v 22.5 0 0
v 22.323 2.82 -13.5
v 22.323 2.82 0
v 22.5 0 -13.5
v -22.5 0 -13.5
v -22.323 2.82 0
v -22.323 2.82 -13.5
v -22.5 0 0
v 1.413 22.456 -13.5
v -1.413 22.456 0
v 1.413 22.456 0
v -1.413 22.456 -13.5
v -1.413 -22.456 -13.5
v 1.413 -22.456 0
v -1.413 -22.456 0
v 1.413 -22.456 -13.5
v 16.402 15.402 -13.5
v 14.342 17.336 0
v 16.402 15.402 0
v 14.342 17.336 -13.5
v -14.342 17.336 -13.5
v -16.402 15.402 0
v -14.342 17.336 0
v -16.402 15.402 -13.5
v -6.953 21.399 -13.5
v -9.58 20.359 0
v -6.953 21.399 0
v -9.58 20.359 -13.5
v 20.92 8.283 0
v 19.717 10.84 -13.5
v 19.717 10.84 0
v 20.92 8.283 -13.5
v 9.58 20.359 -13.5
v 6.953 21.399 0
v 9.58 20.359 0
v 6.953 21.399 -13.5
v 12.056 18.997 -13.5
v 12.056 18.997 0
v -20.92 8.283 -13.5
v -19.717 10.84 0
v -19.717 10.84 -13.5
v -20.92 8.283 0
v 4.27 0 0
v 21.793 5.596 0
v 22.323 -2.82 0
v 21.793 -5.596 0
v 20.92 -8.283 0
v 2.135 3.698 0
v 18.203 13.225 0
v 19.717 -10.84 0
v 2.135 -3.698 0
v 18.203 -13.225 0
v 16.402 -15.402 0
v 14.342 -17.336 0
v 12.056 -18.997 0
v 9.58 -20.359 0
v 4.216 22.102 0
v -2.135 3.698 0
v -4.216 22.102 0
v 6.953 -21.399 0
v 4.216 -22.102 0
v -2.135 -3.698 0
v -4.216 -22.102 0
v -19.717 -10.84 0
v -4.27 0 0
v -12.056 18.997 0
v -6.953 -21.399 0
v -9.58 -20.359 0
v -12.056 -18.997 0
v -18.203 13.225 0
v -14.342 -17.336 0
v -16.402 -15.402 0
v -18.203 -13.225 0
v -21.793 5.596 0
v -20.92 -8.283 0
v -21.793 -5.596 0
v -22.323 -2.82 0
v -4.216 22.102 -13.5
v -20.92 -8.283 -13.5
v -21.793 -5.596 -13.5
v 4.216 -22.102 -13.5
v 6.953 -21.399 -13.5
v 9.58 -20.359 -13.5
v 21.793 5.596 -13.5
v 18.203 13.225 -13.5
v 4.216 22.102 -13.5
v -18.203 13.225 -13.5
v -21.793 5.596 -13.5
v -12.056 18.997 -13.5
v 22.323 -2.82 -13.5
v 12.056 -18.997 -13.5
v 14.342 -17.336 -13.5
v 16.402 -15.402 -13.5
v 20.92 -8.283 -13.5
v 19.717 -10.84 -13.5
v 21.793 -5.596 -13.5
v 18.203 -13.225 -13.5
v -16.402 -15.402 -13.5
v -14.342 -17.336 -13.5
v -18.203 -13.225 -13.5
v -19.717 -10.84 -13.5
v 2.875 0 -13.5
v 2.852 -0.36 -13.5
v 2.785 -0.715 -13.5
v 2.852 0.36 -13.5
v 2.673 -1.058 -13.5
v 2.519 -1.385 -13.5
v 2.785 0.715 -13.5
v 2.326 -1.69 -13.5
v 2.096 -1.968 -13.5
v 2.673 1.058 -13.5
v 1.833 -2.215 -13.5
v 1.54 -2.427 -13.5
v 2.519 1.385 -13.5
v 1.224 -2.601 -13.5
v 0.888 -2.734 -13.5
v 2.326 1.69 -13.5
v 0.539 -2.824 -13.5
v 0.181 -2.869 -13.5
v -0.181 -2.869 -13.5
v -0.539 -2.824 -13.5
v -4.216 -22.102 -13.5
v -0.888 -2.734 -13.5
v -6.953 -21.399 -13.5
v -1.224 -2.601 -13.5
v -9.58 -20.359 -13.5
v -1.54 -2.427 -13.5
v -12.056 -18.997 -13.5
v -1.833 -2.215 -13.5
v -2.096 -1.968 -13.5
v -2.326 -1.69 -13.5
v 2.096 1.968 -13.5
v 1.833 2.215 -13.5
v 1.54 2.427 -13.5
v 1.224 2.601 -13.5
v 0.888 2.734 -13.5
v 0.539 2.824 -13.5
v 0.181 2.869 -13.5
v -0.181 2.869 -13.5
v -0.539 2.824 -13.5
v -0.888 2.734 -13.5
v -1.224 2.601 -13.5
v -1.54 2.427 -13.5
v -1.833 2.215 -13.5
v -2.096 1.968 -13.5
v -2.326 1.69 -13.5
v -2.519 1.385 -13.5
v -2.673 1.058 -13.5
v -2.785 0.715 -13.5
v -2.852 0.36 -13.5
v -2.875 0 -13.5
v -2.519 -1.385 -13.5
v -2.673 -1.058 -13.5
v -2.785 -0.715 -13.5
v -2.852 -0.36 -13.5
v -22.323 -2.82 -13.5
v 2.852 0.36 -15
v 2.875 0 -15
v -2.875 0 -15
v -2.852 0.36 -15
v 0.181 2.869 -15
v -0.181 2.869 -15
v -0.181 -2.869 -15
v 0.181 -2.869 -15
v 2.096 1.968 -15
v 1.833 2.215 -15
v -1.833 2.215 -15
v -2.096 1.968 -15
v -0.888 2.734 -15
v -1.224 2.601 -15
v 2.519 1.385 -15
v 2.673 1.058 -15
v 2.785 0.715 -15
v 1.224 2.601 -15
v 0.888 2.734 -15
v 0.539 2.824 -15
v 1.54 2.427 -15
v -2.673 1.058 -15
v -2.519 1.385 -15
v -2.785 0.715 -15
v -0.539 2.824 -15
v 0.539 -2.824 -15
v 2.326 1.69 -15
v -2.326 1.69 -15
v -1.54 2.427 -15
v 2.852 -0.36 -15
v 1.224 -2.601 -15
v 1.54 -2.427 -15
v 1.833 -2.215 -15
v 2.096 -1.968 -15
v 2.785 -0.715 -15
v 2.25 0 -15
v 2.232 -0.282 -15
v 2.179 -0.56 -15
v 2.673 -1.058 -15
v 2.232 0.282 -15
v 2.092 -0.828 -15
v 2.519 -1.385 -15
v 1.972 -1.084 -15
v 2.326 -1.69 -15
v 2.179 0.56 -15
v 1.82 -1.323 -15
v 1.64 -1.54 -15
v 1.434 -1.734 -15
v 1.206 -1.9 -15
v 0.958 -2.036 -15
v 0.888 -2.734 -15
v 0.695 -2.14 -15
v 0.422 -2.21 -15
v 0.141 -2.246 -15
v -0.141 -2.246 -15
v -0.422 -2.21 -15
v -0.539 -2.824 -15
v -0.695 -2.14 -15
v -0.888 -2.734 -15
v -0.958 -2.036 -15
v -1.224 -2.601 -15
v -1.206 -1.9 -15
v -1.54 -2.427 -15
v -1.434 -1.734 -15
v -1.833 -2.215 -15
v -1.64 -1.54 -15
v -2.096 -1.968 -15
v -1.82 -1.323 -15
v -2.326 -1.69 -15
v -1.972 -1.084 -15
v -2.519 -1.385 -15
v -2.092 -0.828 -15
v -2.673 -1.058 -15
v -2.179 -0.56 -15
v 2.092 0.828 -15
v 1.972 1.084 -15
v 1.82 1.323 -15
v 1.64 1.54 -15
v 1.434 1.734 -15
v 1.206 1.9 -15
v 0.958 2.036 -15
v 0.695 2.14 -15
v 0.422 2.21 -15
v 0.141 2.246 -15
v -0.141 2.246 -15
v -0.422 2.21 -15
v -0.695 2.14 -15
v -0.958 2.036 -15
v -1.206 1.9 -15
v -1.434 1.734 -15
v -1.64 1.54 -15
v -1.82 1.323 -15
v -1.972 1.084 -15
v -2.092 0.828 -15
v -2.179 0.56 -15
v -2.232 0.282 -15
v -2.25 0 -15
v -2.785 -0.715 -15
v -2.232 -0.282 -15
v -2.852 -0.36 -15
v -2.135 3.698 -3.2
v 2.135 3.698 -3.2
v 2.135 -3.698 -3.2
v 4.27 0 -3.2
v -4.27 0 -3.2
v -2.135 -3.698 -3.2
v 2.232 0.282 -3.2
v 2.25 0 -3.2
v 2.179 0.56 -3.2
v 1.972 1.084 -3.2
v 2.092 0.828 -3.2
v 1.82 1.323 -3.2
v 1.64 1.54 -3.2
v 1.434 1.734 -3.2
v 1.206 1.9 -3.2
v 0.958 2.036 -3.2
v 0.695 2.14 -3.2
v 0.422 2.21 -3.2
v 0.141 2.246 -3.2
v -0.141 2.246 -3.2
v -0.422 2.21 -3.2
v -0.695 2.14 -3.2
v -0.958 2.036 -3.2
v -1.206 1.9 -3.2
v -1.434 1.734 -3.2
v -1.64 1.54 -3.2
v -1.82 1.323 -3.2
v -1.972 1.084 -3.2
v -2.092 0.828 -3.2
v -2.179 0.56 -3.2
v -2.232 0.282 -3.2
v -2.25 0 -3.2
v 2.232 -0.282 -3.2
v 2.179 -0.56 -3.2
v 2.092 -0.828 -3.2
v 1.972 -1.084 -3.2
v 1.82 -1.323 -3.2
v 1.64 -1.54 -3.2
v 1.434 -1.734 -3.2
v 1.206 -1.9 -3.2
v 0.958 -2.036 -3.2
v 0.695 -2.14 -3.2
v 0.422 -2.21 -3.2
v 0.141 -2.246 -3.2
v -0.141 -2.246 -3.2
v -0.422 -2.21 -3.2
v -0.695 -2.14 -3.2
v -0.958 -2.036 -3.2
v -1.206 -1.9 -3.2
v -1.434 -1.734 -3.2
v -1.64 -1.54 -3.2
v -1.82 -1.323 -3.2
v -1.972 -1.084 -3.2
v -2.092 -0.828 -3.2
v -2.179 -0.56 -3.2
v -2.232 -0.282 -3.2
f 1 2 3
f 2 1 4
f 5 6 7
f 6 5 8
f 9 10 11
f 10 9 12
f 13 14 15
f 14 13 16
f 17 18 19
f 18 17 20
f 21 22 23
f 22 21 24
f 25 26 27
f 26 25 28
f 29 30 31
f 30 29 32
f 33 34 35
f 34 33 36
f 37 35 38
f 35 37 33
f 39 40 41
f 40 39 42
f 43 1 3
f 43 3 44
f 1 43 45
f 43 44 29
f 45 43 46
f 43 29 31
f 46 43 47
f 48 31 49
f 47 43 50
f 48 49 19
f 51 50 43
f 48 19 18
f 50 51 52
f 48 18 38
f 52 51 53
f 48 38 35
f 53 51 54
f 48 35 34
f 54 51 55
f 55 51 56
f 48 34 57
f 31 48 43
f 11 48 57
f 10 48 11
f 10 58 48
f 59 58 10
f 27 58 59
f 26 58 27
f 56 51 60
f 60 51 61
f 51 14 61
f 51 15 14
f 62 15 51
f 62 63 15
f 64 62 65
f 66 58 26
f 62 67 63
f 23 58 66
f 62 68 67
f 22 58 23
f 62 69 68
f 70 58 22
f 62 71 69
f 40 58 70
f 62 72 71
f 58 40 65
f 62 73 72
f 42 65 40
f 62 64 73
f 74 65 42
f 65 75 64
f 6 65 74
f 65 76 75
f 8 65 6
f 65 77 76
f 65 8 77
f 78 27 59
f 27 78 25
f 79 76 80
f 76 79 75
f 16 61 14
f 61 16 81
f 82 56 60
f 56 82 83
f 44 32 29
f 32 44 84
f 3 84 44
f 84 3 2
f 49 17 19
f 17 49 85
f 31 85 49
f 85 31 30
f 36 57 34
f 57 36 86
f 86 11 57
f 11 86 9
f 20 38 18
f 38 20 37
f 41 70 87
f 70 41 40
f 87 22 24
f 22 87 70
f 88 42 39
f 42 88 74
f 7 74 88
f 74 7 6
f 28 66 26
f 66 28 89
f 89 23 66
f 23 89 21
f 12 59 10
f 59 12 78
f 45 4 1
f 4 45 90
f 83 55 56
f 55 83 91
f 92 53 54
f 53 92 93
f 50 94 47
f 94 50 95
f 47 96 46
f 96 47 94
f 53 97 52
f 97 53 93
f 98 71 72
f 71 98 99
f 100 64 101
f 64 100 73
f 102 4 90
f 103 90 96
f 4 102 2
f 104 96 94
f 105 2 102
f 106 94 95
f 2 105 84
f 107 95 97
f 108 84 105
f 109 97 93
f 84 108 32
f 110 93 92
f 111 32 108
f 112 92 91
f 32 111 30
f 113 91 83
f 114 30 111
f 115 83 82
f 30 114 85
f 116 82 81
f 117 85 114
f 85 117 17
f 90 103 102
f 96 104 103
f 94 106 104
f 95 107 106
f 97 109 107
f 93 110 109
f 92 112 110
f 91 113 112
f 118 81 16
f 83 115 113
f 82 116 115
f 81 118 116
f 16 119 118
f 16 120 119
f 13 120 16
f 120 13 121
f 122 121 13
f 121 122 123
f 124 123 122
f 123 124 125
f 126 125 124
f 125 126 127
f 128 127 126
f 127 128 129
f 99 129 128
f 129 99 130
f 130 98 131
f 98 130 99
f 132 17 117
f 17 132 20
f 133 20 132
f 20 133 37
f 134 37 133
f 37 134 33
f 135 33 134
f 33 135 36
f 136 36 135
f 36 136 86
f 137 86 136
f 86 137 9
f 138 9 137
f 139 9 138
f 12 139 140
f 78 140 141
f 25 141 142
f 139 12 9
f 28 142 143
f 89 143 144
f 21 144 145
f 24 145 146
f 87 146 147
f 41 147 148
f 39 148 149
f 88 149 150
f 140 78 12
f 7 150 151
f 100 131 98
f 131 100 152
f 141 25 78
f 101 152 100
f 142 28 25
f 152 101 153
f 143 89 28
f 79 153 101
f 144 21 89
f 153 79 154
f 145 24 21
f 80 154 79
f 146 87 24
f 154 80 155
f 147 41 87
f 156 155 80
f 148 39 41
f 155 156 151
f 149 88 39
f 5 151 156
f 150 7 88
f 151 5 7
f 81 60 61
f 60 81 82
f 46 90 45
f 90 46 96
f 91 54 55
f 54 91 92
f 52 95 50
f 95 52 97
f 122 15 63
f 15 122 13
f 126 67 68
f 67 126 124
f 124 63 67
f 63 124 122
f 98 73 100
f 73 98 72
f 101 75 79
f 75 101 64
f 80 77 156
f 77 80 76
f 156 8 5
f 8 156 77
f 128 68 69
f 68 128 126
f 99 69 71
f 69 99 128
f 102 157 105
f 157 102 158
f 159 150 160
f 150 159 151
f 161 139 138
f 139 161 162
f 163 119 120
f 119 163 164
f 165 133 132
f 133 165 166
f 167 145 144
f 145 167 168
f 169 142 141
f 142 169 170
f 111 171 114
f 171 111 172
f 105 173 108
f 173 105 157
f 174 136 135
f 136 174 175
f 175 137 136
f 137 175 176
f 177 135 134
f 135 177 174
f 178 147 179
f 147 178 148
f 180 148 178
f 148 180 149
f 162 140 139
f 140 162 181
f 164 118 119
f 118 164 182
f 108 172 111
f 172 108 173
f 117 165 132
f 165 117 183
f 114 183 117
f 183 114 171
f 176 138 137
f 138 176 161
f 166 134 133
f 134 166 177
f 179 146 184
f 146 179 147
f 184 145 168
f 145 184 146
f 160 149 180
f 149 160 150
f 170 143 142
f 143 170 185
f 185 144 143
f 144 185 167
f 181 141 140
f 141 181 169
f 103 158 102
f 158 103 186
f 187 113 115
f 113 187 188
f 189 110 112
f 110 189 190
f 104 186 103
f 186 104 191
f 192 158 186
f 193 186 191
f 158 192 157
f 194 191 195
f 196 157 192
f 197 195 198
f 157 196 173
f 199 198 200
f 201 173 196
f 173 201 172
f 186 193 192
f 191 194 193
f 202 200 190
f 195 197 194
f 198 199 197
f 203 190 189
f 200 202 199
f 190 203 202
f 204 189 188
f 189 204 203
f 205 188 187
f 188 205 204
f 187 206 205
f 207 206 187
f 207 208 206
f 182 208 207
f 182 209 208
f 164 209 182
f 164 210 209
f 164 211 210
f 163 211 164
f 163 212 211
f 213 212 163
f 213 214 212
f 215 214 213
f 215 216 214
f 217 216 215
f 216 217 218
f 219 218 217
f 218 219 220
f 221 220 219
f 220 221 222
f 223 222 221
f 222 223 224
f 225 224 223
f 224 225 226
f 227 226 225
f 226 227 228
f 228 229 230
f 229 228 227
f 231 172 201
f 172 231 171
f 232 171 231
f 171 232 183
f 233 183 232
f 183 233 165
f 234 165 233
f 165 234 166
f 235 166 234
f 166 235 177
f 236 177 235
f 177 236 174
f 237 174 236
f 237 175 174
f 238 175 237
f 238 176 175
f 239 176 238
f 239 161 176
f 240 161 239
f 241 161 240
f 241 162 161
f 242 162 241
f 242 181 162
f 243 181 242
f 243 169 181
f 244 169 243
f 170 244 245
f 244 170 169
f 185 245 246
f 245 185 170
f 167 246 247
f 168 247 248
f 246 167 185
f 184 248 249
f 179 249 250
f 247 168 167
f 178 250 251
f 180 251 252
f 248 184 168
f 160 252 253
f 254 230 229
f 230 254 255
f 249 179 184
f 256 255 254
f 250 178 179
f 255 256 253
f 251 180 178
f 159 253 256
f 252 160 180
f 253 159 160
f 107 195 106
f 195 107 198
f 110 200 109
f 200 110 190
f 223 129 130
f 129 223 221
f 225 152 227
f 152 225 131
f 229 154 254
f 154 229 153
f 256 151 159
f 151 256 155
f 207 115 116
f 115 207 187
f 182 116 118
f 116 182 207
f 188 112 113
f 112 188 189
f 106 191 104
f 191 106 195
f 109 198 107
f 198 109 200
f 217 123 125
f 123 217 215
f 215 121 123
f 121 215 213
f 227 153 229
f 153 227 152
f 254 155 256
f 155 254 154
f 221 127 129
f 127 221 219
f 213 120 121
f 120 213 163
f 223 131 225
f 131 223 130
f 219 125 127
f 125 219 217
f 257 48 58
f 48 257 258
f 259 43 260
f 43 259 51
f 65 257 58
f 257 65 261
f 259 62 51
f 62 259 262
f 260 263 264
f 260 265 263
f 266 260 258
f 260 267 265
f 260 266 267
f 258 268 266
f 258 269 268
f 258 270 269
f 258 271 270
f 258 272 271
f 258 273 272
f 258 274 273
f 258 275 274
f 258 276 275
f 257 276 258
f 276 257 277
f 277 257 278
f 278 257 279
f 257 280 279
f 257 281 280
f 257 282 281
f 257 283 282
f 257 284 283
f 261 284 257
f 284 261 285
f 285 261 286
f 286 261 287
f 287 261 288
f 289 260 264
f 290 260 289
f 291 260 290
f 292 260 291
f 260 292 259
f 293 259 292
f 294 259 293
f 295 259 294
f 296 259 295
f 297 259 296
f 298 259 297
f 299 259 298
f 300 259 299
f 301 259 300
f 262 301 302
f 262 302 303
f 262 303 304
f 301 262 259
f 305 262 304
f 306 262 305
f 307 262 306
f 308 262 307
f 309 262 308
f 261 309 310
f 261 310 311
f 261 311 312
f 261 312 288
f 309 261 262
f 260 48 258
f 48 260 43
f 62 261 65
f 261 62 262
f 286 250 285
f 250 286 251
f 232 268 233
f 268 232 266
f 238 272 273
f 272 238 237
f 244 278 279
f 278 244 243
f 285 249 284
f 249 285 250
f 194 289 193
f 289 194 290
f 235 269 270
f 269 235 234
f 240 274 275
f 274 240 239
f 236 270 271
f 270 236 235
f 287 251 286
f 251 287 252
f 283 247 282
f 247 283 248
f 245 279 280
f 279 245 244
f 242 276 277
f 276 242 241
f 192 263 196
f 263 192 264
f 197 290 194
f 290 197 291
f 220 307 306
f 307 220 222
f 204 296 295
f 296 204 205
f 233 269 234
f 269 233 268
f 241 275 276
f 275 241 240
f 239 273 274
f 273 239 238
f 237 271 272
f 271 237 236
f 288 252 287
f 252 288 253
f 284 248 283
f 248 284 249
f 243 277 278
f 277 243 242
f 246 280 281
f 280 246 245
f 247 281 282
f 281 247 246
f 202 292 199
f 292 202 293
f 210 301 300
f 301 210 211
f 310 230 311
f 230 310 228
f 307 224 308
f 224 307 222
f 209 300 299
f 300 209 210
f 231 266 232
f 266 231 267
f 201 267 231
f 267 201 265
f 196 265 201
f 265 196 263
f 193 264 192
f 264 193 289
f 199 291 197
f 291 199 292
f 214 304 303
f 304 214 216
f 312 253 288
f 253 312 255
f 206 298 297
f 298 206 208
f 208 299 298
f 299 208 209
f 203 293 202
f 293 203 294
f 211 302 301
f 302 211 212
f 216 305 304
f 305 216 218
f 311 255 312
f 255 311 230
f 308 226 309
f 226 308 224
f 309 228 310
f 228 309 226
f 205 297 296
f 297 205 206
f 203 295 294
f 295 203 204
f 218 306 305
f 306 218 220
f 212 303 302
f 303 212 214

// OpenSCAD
$fn = 50;


difference() {
	union() {
		translate(v = [0, 0, -13.5000000000]) {
			cylinder(h = 13.5000000000, r = 22.5000000000);
		}
		translate(v = [0, 0, -15.0000000000]) {
			cylinder(h = 15, r = 2.8750000000);
		}
	}
	union() {
		translate(v = [0, 0, 0]) {
			rotate(a = [0, 0, 0]) {
				difference() {
					union() {
						translate(v = [0, 0, -3.2000000000]) {
							linear_extrude(height = 3.2000000000) {
								polygon(points = [[4.2698000000, 0.0000000000], [2.1349000000, 3.6977552691], [-2.1349000000, 3.6977552691], [-4.2698000000, 0.0000000000], [-2.1349000000, -3.6977552691], [2.1349000000, -3.6977552691]]);
							}
						}
					}
					union();
				}
			}
		}
		#translate(v = [0, 0, -100.0000000000]) {
			cylinder(h = 200, r = 2.2500000000);
		}
	}
}
